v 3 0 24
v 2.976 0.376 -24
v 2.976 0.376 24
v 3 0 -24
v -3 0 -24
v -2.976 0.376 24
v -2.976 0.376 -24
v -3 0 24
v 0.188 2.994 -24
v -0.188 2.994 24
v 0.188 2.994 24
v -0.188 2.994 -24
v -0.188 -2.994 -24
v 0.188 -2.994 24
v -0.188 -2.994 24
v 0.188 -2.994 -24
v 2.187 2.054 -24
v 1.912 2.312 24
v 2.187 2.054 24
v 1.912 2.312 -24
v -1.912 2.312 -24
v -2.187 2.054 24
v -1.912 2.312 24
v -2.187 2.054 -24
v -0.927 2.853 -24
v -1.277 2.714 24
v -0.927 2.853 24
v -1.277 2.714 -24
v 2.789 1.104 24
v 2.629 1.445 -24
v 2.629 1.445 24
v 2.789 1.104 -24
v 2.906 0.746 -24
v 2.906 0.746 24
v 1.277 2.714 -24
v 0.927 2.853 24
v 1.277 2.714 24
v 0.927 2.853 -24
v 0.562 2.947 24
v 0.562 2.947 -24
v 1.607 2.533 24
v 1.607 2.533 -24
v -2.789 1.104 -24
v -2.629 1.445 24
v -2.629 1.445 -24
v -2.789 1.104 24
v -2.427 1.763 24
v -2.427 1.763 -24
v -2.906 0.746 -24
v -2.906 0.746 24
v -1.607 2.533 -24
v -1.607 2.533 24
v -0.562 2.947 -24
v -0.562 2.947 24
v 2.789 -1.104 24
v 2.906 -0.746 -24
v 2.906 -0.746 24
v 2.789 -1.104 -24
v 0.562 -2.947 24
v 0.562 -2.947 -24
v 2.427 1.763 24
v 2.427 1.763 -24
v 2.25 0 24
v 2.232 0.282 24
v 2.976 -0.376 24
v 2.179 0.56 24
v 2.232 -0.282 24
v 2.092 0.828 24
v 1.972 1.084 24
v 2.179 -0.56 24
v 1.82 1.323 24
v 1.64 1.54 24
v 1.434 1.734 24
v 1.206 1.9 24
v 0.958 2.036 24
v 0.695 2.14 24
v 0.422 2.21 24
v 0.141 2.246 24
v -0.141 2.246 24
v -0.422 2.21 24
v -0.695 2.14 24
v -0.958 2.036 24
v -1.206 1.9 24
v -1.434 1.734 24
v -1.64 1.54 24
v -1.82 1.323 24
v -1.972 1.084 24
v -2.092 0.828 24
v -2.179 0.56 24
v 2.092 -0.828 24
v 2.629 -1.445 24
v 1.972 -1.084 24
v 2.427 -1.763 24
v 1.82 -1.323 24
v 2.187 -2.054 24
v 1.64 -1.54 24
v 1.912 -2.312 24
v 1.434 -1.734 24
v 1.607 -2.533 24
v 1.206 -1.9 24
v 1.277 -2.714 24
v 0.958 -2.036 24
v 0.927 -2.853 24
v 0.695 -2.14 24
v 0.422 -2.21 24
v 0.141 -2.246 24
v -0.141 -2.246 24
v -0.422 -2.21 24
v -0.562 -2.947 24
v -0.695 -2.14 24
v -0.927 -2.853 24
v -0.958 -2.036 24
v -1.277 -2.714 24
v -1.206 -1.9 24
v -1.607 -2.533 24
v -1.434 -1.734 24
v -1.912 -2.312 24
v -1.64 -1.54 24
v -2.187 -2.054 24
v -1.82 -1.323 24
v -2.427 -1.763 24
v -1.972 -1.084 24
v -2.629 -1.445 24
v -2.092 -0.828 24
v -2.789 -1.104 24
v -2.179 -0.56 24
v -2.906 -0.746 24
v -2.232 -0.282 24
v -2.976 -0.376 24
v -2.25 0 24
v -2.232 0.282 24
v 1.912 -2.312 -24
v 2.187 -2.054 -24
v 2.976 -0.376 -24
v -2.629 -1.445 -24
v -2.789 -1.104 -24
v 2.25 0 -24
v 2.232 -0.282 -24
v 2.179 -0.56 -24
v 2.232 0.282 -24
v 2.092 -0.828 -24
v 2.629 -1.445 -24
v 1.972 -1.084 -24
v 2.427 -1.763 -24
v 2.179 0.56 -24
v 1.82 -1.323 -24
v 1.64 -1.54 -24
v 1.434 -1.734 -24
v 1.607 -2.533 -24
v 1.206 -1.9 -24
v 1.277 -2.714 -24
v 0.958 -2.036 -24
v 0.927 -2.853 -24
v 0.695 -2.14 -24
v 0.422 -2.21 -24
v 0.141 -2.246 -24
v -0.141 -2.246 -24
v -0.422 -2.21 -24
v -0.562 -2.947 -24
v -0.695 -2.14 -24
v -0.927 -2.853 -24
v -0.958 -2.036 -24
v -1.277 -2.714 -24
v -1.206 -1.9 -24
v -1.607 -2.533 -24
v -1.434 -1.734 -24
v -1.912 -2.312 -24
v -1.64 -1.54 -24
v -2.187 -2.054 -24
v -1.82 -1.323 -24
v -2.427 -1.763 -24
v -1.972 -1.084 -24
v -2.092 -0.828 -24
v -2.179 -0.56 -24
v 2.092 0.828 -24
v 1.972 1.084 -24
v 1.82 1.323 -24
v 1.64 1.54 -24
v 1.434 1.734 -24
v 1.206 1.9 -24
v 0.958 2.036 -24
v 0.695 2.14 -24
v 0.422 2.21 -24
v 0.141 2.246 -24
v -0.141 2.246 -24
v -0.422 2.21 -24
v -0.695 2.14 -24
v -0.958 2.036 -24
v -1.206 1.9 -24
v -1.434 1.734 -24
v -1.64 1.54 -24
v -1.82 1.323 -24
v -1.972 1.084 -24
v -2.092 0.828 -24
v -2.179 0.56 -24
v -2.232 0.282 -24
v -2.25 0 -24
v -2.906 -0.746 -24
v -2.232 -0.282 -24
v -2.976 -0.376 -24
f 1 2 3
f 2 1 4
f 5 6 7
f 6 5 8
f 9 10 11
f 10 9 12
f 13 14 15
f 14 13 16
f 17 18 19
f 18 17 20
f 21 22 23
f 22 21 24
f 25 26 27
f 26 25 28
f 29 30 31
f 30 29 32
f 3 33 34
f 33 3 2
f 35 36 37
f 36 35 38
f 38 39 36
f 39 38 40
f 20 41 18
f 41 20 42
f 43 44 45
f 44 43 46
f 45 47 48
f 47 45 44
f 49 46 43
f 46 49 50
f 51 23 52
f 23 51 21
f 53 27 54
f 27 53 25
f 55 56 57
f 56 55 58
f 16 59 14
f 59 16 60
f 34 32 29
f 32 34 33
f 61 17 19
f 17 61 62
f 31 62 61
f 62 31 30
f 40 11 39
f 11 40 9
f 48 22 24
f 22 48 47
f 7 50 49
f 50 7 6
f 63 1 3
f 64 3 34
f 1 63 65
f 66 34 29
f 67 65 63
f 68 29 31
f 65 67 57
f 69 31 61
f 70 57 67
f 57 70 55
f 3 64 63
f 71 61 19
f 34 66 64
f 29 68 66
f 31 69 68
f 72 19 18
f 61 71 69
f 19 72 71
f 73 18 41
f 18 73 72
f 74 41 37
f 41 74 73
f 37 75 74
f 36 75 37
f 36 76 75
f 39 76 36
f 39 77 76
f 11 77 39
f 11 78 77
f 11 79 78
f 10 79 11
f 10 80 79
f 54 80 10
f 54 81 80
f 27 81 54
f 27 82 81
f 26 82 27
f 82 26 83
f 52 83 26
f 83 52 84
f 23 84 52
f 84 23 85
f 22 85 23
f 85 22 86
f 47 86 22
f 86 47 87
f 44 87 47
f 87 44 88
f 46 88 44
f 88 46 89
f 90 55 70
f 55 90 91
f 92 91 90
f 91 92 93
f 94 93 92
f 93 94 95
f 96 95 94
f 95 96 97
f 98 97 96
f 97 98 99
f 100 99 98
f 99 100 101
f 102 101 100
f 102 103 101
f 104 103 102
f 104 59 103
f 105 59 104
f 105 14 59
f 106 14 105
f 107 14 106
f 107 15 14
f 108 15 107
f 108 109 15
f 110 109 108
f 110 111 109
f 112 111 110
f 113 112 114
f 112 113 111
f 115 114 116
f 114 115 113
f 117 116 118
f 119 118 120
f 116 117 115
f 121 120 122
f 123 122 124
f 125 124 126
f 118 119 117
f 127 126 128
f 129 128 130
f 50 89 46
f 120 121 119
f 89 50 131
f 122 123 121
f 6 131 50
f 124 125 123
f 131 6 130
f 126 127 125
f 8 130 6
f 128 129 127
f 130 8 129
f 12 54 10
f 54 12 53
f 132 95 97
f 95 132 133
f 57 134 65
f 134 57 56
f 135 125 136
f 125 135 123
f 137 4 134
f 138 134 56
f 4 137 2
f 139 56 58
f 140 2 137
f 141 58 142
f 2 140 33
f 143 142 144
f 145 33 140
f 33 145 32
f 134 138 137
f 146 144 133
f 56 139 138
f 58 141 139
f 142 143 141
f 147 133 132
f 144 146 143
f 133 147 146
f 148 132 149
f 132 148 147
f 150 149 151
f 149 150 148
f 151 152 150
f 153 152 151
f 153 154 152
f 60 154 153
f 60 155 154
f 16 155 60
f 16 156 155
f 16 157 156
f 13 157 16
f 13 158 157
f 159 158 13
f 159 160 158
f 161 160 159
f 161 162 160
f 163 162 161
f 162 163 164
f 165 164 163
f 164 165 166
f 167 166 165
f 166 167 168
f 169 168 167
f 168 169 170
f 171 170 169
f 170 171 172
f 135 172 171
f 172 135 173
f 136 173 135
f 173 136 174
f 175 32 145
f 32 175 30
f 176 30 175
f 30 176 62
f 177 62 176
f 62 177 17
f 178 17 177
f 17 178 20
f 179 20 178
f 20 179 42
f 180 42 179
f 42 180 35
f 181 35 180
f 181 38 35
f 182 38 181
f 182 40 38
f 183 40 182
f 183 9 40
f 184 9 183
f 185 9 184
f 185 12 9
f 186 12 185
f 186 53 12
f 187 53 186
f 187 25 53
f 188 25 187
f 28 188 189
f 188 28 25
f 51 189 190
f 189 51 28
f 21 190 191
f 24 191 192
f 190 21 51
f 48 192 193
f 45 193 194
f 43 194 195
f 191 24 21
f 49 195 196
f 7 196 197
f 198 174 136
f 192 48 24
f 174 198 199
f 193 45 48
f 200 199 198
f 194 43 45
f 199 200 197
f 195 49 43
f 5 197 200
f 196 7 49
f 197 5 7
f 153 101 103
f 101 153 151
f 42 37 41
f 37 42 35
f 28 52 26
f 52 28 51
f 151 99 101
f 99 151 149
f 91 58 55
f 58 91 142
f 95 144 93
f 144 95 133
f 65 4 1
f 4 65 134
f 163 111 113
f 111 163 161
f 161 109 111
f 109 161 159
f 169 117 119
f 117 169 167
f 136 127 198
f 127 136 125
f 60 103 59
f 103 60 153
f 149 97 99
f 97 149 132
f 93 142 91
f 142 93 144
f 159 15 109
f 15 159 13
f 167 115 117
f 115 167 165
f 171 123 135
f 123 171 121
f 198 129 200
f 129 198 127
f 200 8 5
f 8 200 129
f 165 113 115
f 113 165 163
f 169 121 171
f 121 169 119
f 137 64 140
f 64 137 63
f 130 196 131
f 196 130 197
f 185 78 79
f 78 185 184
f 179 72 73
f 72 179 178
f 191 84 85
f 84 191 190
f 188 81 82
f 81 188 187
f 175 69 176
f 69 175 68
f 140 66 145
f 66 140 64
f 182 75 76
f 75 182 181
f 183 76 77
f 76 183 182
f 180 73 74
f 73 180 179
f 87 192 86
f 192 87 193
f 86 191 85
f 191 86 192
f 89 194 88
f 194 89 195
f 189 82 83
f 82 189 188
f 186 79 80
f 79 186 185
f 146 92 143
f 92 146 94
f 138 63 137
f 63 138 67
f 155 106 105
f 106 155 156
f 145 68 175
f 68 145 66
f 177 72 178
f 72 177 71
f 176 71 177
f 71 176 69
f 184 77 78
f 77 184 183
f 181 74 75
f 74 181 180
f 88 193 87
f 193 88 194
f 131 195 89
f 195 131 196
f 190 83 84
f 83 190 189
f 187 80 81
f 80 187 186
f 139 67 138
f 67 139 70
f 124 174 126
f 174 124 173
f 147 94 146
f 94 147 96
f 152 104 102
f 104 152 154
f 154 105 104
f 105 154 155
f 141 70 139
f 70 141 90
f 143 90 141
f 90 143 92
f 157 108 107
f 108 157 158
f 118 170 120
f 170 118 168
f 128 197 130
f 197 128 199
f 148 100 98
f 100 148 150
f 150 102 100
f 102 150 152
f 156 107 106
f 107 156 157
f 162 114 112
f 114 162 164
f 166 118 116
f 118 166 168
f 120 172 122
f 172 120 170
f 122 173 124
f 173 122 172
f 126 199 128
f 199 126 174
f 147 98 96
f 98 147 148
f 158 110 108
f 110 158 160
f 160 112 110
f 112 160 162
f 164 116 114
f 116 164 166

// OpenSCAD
$fn = 50;


difference() {
	union() {
		translate(v = [0, 0, -24.0000000000]) {
			cylinder(h = 48, r = 3.0000000000);
		}
	}
	union() {
		translate(v = [0, 0, -100.0000000000]) {
			cylinder(h = 200, r = 2.2500000000);
		}
	}
}
